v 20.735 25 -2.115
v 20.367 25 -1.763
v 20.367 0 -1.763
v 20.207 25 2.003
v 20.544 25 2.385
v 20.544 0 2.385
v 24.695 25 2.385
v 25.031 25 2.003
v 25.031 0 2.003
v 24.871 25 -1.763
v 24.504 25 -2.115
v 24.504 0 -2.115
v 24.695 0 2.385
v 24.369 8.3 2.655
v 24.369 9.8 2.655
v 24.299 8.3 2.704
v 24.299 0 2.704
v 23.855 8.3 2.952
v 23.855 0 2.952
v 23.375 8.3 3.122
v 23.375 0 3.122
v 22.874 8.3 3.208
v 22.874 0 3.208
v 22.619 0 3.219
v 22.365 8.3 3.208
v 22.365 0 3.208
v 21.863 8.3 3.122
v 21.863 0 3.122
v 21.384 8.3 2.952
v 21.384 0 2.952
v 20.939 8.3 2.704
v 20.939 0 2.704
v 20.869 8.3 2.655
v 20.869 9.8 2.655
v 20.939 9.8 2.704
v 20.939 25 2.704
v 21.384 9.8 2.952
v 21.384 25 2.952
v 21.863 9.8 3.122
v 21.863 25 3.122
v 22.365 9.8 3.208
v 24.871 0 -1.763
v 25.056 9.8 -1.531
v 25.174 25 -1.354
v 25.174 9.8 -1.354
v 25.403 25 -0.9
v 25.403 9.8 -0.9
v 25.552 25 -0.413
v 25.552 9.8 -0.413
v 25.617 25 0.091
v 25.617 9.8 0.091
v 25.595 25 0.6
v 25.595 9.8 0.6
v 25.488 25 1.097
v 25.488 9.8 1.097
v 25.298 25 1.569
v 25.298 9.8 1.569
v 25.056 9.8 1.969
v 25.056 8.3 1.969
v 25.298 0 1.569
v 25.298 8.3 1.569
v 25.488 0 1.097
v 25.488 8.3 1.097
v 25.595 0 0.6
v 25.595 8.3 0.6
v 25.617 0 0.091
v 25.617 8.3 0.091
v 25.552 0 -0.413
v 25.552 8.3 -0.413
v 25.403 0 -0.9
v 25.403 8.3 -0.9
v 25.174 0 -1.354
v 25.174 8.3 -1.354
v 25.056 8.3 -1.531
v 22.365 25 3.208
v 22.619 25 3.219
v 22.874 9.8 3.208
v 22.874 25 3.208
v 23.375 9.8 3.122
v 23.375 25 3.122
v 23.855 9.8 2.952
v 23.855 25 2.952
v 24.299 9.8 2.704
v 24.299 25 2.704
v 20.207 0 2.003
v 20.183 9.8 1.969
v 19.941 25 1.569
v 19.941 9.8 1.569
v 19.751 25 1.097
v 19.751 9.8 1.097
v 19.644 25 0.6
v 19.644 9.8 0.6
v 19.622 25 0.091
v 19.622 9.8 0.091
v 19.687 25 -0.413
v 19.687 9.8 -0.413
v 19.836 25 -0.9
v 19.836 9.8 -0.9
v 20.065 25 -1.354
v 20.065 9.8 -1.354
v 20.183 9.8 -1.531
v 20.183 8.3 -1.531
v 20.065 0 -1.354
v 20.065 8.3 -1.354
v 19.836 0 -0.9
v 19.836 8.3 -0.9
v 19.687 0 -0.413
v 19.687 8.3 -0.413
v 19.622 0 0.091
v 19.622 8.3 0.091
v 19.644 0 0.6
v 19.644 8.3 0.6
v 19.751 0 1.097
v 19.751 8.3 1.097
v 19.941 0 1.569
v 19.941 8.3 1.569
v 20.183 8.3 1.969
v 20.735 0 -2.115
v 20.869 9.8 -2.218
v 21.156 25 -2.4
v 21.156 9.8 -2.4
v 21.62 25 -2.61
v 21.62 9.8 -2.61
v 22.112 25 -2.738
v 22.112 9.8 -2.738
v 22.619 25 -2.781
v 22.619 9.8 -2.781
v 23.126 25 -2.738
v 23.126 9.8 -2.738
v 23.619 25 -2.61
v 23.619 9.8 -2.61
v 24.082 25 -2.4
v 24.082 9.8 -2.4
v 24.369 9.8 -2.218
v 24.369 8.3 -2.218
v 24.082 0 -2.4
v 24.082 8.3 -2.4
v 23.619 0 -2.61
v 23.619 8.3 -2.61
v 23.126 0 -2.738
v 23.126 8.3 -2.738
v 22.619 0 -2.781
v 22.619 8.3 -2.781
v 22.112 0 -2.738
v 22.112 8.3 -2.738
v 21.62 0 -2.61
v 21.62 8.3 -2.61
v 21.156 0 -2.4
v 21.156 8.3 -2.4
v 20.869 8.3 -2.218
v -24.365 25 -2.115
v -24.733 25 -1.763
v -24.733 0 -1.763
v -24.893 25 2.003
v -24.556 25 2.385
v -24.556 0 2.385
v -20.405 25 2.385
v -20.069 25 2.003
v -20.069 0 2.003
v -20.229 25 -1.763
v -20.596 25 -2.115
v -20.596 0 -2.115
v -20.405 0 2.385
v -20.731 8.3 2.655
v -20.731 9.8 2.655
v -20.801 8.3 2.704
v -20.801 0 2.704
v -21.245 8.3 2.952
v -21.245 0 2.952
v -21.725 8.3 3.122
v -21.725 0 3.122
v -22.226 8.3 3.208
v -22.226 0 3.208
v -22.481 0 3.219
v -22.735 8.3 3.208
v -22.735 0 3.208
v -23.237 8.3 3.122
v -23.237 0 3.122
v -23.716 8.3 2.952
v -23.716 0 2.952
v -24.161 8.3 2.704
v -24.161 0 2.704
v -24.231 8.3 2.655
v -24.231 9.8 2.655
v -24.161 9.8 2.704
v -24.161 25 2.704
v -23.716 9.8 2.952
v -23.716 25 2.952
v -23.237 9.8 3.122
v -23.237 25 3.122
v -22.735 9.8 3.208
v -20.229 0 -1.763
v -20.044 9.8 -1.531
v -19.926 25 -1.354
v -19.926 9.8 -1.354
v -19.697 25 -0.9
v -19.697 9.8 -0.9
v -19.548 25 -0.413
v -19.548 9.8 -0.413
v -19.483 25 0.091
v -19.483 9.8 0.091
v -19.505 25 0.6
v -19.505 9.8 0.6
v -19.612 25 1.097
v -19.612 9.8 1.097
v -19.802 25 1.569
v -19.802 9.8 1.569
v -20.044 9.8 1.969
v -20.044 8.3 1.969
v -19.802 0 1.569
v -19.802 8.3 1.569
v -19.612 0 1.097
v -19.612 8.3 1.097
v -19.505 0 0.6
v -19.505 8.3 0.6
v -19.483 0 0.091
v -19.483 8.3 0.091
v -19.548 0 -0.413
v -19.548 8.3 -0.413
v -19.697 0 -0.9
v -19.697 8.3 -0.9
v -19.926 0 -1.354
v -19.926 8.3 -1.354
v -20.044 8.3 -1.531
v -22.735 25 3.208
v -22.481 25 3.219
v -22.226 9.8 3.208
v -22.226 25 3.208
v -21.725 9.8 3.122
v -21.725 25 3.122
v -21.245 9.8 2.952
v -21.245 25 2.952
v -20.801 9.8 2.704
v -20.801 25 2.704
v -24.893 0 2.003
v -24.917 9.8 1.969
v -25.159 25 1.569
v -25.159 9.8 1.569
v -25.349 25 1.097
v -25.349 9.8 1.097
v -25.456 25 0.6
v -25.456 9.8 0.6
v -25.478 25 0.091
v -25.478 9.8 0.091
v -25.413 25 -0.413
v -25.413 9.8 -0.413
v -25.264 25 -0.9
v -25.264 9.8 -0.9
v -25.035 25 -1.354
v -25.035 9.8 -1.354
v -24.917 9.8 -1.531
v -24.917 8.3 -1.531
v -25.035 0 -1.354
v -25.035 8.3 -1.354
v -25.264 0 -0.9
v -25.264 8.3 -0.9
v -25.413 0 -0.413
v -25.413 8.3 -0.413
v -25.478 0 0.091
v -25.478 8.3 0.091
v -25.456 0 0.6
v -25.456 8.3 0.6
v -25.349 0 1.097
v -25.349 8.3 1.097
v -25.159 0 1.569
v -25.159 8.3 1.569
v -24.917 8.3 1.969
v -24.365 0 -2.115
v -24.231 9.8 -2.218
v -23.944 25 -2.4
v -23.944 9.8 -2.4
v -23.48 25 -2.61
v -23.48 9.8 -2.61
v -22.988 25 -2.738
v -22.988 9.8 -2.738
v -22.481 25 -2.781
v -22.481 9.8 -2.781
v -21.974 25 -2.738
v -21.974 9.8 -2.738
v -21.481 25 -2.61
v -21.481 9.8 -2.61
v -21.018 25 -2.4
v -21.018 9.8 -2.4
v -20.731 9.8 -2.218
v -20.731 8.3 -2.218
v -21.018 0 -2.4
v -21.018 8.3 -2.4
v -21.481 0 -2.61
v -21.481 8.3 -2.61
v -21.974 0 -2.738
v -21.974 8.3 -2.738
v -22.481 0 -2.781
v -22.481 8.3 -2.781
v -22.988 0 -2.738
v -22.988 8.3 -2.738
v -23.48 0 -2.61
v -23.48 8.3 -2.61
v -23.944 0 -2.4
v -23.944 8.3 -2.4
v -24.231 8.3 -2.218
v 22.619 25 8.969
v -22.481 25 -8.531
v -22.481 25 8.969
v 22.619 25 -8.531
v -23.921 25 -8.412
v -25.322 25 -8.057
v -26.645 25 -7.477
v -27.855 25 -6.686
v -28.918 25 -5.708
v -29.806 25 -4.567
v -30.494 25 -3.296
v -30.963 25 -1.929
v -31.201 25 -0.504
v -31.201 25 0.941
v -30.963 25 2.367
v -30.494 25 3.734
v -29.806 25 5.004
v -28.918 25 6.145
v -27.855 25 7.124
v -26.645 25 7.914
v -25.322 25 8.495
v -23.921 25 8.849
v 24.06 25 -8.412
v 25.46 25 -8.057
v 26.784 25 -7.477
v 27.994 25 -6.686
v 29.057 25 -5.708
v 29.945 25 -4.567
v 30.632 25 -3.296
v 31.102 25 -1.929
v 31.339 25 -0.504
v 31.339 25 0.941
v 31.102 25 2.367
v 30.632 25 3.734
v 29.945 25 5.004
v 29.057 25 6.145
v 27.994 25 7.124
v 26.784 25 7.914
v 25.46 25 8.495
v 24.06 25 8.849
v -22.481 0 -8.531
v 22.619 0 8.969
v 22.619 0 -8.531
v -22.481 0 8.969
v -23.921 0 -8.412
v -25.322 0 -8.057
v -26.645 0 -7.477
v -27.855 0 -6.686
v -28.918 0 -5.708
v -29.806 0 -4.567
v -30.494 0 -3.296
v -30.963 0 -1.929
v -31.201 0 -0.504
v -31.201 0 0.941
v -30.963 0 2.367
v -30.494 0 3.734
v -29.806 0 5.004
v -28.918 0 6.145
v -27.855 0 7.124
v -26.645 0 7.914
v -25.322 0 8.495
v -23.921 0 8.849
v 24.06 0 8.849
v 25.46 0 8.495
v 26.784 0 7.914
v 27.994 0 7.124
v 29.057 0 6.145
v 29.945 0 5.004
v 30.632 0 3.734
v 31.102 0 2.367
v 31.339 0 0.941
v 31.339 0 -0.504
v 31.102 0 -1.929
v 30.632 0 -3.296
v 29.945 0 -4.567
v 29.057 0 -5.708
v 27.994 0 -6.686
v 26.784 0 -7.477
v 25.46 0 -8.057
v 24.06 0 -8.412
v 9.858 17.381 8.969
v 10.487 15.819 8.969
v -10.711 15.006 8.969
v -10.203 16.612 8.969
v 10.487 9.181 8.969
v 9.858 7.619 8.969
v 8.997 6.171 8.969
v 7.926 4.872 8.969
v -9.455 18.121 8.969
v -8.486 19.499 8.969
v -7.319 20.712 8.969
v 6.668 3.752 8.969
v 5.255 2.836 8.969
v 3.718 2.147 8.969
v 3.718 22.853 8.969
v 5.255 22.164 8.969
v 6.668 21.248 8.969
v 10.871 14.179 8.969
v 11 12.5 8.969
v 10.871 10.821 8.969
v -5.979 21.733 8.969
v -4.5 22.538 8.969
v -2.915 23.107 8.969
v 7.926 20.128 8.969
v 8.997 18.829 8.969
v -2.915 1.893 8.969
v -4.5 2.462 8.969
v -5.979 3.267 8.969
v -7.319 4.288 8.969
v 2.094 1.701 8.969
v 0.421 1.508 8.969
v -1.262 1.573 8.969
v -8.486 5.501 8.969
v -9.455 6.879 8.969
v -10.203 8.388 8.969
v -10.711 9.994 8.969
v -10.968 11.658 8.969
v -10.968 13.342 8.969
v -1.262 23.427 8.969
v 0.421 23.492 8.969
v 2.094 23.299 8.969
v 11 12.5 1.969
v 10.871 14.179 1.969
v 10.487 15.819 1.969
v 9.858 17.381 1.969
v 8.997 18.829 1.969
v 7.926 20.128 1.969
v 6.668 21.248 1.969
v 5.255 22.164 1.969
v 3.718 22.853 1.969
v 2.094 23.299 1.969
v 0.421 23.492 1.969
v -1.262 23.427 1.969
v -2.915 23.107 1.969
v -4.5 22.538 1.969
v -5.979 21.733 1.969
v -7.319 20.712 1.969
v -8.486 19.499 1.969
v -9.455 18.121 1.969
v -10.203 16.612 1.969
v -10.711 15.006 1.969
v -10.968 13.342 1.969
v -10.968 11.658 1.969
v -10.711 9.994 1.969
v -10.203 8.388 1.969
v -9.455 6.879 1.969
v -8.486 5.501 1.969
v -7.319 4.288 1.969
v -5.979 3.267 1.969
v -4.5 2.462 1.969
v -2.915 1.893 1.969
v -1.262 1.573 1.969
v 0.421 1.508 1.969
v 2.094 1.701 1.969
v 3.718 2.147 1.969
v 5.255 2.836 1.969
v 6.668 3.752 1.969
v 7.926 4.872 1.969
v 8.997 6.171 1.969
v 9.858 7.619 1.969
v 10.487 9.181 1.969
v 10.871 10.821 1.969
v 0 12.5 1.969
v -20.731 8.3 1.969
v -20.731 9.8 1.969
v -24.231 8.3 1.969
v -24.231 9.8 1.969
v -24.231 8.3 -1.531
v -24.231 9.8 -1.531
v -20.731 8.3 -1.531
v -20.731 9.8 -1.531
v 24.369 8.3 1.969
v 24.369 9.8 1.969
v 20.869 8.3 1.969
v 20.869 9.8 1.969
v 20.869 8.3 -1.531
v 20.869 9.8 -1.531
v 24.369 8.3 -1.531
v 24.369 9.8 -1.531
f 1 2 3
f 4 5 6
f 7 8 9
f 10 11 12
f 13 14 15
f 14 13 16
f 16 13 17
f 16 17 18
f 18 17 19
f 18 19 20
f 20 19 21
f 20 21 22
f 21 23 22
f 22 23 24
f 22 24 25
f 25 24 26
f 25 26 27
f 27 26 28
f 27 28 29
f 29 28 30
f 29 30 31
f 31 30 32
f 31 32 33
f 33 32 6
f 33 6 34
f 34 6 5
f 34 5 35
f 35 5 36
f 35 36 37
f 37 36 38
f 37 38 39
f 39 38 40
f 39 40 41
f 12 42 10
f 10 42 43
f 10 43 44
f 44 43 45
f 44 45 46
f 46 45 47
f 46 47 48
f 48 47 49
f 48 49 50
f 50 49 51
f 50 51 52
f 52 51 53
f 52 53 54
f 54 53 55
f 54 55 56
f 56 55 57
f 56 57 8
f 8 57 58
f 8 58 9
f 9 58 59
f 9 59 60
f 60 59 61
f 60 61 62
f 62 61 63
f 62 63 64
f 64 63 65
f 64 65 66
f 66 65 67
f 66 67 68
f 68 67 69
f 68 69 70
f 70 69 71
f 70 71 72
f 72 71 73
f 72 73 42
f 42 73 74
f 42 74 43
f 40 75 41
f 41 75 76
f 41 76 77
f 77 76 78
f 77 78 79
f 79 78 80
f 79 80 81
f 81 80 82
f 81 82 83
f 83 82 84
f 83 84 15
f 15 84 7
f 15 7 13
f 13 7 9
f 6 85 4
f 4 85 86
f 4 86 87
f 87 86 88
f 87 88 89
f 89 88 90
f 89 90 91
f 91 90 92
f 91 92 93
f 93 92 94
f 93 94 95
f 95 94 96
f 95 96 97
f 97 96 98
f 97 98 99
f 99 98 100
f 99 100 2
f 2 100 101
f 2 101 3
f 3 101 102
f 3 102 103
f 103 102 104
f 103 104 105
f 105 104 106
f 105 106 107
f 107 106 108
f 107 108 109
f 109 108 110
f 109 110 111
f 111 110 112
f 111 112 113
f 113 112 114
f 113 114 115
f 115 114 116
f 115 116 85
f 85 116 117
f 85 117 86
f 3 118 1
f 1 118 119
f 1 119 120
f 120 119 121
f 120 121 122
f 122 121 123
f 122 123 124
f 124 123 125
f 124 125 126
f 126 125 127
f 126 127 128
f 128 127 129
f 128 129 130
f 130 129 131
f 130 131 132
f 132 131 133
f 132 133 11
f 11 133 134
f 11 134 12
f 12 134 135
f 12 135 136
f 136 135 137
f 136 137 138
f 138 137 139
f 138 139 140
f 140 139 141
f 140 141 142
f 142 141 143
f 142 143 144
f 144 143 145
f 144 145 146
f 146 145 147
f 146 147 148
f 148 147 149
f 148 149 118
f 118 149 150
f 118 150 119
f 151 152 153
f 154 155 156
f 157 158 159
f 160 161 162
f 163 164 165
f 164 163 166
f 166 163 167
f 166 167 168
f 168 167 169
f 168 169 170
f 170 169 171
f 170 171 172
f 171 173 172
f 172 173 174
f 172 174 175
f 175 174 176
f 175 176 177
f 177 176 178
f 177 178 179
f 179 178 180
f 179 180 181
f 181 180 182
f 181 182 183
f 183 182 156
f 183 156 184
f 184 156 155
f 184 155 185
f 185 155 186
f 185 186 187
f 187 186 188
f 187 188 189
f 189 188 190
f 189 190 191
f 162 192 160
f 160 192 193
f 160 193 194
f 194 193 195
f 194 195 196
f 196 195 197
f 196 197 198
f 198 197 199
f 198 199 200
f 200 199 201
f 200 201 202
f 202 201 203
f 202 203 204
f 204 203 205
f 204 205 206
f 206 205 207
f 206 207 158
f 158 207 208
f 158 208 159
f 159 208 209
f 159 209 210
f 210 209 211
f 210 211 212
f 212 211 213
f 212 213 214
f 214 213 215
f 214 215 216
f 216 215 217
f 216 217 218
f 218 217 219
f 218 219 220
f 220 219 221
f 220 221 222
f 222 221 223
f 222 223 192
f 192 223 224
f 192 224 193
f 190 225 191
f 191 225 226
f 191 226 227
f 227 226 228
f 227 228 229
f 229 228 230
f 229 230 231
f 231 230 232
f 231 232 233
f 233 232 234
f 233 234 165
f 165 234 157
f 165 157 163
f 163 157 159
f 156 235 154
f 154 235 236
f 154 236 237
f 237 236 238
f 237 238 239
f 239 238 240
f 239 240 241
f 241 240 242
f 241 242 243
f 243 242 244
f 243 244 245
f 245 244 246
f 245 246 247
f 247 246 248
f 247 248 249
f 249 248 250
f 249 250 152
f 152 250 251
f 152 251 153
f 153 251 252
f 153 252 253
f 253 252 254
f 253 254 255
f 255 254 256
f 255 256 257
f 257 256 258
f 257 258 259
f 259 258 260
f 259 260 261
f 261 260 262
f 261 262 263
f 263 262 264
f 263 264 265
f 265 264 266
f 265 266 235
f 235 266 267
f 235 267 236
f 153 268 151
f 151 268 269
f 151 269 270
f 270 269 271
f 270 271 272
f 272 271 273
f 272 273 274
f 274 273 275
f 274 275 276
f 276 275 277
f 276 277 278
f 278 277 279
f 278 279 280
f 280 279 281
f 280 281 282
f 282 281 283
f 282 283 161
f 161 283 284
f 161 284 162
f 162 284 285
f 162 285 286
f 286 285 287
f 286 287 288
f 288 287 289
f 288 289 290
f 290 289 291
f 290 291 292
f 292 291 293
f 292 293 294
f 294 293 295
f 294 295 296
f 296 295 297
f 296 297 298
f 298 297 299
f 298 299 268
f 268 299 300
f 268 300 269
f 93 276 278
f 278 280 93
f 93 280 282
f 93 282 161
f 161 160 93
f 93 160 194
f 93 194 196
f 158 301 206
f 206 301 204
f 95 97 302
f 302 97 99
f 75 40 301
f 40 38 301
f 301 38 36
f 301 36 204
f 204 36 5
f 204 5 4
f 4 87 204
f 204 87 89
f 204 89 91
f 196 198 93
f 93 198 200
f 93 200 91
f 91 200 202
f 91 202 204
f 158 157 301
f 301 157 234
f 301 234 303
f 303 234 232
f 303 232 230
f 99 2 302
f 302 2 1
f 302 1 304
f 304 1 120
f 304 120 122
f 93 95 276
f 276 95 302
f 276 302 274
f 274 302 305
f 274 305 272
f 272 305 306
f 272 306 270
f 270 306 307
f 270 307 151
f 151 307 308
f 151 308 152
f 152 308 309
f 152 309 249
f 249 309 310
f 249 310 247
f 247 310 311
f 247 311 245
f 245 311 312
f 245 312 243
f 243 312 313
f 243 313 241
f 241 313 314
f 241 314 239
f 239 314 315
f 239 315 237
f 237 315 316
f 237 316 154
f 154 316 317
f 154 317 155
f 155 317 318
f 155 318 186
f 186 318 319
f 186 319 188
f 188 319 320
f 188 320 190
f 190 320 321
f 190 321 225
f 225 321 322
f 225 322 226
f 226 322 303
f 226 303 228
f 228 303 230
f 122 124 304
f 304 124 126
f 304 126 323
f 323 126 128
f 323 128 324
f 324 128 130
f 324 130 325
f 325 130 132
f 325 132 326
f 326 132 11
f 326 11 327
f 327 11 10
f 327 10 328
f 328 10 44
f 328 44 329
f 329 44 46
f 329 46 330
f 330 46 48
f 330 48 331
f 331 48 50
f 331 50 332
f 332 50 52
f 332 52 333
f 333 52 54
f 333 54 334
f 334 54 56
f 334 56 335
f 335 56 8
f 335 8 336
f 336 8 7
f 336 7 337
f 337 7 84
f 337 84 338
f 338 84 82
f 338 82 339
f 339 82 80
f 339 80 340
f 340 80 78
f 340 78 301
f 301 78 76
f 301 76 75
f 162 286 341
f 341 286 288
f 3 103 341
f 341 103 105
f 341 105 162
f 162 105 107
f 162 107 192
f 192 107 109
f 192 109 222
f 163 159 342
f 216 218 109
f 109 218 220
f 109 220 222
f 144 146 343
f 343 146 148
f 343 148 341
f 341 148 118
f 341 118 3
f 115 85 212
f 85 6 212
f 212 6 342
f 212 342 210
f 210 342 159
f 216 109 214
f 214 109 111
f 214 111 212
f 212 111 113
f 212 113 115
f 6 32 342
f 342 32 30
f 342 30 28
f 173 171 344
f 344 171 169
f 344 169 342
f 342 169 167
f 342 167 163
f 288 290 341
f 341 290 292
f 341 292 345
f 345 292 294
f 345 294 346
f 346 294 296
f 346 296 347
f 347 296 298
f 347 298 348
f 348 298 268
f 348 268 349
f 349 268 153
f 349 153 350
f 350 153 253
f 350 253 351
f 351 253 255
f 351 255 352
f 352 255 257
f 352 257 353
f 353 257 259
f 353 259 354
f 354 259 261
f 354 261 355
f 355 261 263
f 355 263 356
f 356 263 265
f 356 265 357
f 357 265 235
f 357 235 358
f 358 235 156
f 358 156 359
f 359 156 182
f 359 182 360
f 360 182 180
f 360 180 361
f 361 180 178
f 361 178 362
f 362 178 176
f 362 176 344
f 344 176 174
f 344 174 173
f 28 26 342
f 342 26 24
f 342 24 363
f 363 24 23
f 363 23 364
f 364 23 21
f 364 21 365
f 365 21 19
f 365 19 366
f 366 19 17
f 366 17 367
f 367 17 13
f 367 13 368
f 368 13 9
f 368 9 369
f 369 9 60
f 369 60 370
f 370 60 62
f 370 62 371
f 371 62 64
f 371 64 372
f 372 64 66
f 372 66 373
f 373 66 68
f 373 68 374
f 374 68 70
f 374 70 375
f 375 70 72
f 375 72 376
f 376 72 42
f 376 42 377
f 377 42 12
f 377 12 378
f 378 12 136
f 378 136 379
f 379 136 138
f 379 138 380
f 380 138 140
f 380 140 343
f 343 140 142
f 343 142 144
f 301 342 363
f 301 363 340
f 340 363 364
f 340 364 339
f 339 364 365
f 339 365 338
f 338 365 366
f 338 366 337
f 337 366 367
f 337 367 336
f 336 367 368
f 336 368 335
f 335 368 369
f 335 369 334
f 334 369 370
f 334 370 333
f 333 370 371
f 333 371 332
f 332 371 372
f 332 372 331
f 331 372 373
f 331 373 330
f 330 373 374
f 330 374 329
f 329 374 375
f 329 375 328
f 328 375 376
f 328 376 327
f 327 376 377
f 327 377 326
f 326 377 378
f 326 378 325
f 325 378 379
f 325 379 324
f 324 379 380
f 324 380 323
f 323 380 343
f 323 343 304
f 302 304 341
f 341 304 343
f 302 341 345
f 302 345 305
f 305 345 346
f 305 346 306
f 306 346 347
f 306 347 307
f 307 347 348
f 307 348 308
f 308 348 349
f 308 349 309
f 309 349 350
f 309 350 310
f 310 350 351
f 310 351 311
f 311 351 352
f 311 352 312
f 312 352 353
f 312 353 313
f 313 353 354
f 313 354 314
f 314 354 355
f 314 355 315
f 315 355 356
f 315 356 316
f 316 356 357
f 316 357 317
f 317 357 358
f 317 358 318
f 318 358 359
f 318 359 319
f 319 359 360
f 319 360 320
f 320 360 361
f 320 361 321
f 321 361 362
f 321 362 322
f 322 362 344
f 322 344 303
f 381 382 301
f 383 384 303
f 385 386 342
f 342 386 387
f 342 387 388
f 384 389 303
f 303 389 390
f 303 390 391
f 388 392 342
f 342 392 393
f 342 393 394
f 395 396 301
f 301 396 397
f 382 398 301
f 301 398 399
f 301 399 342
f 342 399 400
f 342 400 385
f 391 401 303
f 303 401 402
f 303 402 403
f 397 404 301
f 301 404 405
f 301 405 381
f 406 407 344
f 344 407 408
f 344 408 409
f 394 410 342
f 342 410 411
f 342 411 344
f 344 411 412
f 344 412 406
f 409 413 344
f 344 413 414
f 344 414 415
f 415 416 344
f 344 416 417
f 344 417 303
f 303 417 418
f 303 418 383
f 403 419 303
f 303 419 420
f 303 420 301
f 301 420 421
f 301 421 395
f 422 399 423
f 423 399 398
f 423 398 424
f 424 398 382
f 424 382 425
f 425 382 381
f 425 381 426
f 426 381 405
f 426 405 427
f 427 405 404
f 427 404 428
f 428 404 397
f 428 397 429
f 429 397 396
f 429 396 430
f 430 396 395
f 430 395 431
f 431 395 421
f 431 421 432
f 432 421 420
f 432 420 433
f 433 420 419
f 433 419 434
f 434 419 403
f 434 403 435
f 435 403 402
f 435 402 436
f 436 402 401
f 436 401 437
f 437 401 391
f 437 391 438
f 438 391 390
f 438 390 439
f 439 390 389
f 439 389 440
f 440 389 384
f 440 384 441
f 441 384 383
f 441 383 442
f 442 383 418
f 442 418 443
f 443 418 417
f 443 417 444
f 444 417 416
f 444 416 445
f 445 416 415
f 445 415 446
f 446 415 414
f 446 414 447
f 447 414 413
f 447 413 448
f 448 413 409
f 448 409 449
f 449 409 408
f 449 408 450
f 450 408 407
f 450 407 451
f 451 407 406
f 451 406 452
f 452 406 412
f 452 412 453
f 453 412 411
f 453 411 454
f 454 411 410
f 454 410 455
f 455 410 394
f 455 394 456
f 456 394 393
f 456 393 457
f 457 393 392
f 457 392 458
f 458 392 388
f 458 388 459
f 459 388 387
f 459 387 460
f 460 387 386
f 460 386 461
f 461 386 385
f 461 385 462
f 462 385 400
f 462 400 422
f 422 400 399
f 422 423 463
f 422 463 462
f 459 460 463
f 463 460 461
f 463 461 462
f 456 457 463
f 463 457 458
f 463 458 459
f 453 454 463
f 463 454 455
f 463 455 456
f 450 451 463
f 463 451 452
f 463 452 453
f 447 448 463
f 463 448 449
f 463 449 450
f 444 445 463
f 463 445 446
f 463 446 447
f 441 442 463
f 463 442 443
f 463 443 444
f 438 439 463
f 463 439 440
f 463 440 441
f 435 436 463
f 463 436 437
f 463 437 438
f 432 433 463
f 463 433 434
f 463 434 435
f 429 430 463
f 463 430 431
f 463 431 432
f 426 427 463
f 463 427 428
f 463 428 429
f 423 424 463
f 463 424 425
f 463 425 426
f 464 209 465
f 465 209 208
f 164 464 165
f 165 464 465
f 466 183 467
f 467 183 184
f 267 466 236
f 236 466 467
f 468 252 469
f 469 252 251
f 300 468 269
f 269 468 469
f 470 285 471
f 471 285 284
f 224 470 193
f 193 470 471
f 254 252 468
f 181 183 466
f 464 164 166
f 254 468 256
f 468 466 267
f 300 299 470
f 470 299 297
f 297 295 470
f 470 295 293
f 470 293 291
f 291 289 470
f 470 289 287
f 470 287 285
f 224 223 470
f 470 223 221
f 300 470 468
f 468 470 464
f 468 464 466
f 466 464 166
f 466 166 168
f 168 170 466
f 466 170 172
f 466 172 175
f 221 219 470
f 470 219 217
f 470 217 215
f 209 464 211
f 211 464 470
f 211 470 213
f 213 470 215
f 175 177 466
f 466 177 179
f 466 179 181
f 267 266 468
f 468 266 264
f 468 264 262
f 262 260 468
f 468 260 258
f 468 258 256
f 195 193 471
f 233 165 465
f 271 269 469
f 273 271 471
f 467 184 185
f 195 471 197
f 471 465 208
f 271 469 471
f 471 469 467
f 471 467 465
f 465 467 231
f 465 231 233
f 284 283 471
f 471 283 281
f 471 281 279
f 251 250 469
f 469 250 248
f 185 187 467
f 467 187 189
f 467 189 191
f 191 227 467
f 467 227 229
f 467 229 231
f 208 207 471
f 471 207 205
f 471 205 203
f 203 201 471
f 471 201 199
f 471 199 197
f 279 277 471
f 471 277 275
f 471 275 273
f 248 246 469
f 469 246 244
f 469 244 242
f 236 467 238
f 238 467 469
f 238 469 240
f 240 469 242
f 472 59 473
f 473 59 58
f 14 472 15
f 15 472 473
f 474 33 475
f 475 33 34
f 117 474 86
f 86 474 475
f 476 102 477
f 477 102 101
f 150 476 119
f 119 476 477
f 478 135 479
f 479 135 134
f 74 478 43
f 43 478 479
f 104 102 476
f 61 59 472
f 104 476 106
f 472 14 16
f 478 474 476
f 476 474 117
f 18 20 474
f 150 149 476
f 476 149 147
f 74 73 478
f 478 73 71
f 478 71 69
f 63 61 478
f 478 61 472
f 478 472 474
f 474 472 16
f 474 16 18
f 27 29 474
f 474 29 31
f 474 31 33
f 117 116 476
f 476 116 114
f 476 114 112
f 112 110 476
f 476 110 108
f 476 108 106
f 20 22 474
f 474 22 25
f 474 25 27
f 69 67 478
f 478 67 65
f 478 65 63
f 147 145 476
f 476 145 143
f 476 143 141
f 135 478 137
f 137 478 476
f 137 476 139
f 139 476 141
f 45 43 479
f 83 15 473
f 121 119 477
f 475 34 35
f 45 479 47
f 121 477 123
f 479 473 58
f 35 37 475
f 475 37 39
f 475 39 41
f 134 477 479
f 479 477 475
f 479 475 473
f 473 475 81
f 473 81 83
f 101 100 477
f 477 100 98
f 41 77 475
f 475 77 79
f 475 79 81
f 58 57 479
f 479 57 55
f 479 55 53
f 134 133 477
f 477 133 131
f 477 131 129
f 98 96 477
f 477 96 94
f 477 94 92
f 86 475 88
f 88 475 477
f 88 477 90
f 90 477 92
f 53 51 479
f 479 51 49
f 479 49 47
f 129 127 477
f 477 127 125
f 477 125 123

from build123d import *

# Parameters (mm, degrees)
SKETCH1_R           = 3
BOSS_EXTRUDE1_DEPTH = 25
SKETCH3_R           = 11
CUT_EXTRUDE1_DEPTH  = 7
BOSS_EXTRUDE2_START = -1.5
BOSS_EXTRUDE2_DEPTH = 1.5
BOSS_EXTRUDE3_START = -1.5
BOSS_EXTRUDE3_DEPTH = 1.5


with BuildPart() as part:
    # Sketch1 → Boss-Extrude1 (new body)
    with BuildSketch(Plane(origin=(0, 0, 0), x_dir=(1, 0, 0), z_dir=(0, 1, 0))):
        with BuildLine():
            Line((-22.480683045, -8.968703758), (22.619316955, -8.968703758))
            ThreePointArc((22.619316955, -8.968703758), (31.369316462, -0.218703512), (22.619316462, 8.531296242))
            Line((22.619316462, 8.531296242), (-22.480682552, 8.531296242))
            ThreePointArc((-22.480682552, 8.531296242), (-31.230682552, -0.218703512), (-22.480683045, -8.968703758))
        make_face()
        with Locations(Location((-22.480682552, -0.218703758, 0), (0, 0, 270))):
            Circle(SKETCH1_R, mode=Mode.SUBTRACT)
        with Locations(Location((22.619316462, -0.218703758, 0), (0, 0, 270))):
            Circle(SKETCH1_R, mode=Mode.SUBTRACT)
    extrude(amount=BOSS_EXTRUDE1_DEPTH)

    # Sketch3 → Cut-Extrude1 (cut)
    with BuildSketch(Plane.XY.offset(8.968703758)):
        with Locations((0, 12.5)):
            Circle(SKETCH3_R)
    extrude(amount=-CUT_EXTRUDE1_DEPTH, mode=Mode.SUBTRACT)

    # Sketch4 → Boss-Extrude2 (add)
    with BuildSketch(Plane(origin=(0, 9.8, 0), x_dir=(1, 0, 0), z_dir=(0, 1, 0)).offset(BOSS_EXTRUDE2_START)):
        with BuildLine():
            Line((-20.730682552, 2.217994828), (-20.730682552, 1.531296242))
            Line((-20.730682552, 1.531296242), (-20.043983966, 1.531296242))
            ThreePointArc((-20.043983966, 1.531296242), (-19.480682552, -0.218703758), (-20.043983966, -1.968703758))
            Line((-20.043983966, -1.968703758), (-20.730682552, -1.968703758))
            Line((-20.730682552, -1.968703758), (-20.730682552, -2.655402344))
            ThreePointArc((-20.730682552, -2.655402344), (-22.480682552, -3.218703758), (-24.230682552, -2.655402344))
            Line((-24.230682552, -2.655402344), (-24.230682552, -1.968703758))
            Line((-24.230682552, -1.968703758), (-24.917381138, -1.968703758))
            ThreePointArc((-24.917381138, -1.968703758), (-25.480682552, -0.218703758), (-24.917381138, 1.531296242))
            Line((-24.917381138, 1.531296242), (-24.230682552, 1.531296242))
            Line((-24.230682552, 1.531296242), (-24.230682552, 2.217994828))
            ThreePointArc((-24.230682552, 2.217994828), (-22.480682552, 2.781296242), (-20.730682552, 2.217994828))
        make_face()
    extrude(amount=BOSS_EXTRUDE2_DEPTH)

    # Sketch5 → Boss-Extrude3 (add)
    with BuildSketch(Plane(origin=(0, 9.8, 0), x_dir=(1, 0, 0), z_dir=(0, 1, 0)).offset(BOSS_EXTRUDE3_START)):
        with BuildLine():
            Line((24.369316462, 2.217994828), (24.369316462, 1.531296242))
            Line((24.369316462, 1.531296242), (25.056015049, 1.531296242))
            ThreePointArc((25.056015049, 1.531296242), (25.619316462, -0.218703758), (25.056015049, -1.968703758))
            Line((25.056015049, -1.968703758), (24.369316462, -1.968703758))
            Line((24.369316462, -1.968703758), (24.369316462, -2.655402344))
            ThreePointArc((24.369316462, -2.655402344), (22.619316462, -3.218703758), (20.869316462, -2.655402344))
            Line((20.869316462, -2.655402344), (20.869316462, -1.968703758))
            Line((20.869316462, -1.968703758), (20.182617876, -1.968703758))
            ThreePointArc((20.182617876, -1.968703758), (19.619316462, -0.218703758), (20.182617876, 1.531296242))
            Line((20.182617876, 1.531296242), (20.869316462, 1.531296242))
            Line((20.869316462, 1.531296242), (20.869316462, 2.217994828))
            ThreePointArc((20.869316462, 2.217994828), (22.619316462, 2.781296242), (24.369316462, 2.217994828))
        make_face()
    extrude(amount=BOSS_EXTRUDE3_DEPTH)


solid = part.part
